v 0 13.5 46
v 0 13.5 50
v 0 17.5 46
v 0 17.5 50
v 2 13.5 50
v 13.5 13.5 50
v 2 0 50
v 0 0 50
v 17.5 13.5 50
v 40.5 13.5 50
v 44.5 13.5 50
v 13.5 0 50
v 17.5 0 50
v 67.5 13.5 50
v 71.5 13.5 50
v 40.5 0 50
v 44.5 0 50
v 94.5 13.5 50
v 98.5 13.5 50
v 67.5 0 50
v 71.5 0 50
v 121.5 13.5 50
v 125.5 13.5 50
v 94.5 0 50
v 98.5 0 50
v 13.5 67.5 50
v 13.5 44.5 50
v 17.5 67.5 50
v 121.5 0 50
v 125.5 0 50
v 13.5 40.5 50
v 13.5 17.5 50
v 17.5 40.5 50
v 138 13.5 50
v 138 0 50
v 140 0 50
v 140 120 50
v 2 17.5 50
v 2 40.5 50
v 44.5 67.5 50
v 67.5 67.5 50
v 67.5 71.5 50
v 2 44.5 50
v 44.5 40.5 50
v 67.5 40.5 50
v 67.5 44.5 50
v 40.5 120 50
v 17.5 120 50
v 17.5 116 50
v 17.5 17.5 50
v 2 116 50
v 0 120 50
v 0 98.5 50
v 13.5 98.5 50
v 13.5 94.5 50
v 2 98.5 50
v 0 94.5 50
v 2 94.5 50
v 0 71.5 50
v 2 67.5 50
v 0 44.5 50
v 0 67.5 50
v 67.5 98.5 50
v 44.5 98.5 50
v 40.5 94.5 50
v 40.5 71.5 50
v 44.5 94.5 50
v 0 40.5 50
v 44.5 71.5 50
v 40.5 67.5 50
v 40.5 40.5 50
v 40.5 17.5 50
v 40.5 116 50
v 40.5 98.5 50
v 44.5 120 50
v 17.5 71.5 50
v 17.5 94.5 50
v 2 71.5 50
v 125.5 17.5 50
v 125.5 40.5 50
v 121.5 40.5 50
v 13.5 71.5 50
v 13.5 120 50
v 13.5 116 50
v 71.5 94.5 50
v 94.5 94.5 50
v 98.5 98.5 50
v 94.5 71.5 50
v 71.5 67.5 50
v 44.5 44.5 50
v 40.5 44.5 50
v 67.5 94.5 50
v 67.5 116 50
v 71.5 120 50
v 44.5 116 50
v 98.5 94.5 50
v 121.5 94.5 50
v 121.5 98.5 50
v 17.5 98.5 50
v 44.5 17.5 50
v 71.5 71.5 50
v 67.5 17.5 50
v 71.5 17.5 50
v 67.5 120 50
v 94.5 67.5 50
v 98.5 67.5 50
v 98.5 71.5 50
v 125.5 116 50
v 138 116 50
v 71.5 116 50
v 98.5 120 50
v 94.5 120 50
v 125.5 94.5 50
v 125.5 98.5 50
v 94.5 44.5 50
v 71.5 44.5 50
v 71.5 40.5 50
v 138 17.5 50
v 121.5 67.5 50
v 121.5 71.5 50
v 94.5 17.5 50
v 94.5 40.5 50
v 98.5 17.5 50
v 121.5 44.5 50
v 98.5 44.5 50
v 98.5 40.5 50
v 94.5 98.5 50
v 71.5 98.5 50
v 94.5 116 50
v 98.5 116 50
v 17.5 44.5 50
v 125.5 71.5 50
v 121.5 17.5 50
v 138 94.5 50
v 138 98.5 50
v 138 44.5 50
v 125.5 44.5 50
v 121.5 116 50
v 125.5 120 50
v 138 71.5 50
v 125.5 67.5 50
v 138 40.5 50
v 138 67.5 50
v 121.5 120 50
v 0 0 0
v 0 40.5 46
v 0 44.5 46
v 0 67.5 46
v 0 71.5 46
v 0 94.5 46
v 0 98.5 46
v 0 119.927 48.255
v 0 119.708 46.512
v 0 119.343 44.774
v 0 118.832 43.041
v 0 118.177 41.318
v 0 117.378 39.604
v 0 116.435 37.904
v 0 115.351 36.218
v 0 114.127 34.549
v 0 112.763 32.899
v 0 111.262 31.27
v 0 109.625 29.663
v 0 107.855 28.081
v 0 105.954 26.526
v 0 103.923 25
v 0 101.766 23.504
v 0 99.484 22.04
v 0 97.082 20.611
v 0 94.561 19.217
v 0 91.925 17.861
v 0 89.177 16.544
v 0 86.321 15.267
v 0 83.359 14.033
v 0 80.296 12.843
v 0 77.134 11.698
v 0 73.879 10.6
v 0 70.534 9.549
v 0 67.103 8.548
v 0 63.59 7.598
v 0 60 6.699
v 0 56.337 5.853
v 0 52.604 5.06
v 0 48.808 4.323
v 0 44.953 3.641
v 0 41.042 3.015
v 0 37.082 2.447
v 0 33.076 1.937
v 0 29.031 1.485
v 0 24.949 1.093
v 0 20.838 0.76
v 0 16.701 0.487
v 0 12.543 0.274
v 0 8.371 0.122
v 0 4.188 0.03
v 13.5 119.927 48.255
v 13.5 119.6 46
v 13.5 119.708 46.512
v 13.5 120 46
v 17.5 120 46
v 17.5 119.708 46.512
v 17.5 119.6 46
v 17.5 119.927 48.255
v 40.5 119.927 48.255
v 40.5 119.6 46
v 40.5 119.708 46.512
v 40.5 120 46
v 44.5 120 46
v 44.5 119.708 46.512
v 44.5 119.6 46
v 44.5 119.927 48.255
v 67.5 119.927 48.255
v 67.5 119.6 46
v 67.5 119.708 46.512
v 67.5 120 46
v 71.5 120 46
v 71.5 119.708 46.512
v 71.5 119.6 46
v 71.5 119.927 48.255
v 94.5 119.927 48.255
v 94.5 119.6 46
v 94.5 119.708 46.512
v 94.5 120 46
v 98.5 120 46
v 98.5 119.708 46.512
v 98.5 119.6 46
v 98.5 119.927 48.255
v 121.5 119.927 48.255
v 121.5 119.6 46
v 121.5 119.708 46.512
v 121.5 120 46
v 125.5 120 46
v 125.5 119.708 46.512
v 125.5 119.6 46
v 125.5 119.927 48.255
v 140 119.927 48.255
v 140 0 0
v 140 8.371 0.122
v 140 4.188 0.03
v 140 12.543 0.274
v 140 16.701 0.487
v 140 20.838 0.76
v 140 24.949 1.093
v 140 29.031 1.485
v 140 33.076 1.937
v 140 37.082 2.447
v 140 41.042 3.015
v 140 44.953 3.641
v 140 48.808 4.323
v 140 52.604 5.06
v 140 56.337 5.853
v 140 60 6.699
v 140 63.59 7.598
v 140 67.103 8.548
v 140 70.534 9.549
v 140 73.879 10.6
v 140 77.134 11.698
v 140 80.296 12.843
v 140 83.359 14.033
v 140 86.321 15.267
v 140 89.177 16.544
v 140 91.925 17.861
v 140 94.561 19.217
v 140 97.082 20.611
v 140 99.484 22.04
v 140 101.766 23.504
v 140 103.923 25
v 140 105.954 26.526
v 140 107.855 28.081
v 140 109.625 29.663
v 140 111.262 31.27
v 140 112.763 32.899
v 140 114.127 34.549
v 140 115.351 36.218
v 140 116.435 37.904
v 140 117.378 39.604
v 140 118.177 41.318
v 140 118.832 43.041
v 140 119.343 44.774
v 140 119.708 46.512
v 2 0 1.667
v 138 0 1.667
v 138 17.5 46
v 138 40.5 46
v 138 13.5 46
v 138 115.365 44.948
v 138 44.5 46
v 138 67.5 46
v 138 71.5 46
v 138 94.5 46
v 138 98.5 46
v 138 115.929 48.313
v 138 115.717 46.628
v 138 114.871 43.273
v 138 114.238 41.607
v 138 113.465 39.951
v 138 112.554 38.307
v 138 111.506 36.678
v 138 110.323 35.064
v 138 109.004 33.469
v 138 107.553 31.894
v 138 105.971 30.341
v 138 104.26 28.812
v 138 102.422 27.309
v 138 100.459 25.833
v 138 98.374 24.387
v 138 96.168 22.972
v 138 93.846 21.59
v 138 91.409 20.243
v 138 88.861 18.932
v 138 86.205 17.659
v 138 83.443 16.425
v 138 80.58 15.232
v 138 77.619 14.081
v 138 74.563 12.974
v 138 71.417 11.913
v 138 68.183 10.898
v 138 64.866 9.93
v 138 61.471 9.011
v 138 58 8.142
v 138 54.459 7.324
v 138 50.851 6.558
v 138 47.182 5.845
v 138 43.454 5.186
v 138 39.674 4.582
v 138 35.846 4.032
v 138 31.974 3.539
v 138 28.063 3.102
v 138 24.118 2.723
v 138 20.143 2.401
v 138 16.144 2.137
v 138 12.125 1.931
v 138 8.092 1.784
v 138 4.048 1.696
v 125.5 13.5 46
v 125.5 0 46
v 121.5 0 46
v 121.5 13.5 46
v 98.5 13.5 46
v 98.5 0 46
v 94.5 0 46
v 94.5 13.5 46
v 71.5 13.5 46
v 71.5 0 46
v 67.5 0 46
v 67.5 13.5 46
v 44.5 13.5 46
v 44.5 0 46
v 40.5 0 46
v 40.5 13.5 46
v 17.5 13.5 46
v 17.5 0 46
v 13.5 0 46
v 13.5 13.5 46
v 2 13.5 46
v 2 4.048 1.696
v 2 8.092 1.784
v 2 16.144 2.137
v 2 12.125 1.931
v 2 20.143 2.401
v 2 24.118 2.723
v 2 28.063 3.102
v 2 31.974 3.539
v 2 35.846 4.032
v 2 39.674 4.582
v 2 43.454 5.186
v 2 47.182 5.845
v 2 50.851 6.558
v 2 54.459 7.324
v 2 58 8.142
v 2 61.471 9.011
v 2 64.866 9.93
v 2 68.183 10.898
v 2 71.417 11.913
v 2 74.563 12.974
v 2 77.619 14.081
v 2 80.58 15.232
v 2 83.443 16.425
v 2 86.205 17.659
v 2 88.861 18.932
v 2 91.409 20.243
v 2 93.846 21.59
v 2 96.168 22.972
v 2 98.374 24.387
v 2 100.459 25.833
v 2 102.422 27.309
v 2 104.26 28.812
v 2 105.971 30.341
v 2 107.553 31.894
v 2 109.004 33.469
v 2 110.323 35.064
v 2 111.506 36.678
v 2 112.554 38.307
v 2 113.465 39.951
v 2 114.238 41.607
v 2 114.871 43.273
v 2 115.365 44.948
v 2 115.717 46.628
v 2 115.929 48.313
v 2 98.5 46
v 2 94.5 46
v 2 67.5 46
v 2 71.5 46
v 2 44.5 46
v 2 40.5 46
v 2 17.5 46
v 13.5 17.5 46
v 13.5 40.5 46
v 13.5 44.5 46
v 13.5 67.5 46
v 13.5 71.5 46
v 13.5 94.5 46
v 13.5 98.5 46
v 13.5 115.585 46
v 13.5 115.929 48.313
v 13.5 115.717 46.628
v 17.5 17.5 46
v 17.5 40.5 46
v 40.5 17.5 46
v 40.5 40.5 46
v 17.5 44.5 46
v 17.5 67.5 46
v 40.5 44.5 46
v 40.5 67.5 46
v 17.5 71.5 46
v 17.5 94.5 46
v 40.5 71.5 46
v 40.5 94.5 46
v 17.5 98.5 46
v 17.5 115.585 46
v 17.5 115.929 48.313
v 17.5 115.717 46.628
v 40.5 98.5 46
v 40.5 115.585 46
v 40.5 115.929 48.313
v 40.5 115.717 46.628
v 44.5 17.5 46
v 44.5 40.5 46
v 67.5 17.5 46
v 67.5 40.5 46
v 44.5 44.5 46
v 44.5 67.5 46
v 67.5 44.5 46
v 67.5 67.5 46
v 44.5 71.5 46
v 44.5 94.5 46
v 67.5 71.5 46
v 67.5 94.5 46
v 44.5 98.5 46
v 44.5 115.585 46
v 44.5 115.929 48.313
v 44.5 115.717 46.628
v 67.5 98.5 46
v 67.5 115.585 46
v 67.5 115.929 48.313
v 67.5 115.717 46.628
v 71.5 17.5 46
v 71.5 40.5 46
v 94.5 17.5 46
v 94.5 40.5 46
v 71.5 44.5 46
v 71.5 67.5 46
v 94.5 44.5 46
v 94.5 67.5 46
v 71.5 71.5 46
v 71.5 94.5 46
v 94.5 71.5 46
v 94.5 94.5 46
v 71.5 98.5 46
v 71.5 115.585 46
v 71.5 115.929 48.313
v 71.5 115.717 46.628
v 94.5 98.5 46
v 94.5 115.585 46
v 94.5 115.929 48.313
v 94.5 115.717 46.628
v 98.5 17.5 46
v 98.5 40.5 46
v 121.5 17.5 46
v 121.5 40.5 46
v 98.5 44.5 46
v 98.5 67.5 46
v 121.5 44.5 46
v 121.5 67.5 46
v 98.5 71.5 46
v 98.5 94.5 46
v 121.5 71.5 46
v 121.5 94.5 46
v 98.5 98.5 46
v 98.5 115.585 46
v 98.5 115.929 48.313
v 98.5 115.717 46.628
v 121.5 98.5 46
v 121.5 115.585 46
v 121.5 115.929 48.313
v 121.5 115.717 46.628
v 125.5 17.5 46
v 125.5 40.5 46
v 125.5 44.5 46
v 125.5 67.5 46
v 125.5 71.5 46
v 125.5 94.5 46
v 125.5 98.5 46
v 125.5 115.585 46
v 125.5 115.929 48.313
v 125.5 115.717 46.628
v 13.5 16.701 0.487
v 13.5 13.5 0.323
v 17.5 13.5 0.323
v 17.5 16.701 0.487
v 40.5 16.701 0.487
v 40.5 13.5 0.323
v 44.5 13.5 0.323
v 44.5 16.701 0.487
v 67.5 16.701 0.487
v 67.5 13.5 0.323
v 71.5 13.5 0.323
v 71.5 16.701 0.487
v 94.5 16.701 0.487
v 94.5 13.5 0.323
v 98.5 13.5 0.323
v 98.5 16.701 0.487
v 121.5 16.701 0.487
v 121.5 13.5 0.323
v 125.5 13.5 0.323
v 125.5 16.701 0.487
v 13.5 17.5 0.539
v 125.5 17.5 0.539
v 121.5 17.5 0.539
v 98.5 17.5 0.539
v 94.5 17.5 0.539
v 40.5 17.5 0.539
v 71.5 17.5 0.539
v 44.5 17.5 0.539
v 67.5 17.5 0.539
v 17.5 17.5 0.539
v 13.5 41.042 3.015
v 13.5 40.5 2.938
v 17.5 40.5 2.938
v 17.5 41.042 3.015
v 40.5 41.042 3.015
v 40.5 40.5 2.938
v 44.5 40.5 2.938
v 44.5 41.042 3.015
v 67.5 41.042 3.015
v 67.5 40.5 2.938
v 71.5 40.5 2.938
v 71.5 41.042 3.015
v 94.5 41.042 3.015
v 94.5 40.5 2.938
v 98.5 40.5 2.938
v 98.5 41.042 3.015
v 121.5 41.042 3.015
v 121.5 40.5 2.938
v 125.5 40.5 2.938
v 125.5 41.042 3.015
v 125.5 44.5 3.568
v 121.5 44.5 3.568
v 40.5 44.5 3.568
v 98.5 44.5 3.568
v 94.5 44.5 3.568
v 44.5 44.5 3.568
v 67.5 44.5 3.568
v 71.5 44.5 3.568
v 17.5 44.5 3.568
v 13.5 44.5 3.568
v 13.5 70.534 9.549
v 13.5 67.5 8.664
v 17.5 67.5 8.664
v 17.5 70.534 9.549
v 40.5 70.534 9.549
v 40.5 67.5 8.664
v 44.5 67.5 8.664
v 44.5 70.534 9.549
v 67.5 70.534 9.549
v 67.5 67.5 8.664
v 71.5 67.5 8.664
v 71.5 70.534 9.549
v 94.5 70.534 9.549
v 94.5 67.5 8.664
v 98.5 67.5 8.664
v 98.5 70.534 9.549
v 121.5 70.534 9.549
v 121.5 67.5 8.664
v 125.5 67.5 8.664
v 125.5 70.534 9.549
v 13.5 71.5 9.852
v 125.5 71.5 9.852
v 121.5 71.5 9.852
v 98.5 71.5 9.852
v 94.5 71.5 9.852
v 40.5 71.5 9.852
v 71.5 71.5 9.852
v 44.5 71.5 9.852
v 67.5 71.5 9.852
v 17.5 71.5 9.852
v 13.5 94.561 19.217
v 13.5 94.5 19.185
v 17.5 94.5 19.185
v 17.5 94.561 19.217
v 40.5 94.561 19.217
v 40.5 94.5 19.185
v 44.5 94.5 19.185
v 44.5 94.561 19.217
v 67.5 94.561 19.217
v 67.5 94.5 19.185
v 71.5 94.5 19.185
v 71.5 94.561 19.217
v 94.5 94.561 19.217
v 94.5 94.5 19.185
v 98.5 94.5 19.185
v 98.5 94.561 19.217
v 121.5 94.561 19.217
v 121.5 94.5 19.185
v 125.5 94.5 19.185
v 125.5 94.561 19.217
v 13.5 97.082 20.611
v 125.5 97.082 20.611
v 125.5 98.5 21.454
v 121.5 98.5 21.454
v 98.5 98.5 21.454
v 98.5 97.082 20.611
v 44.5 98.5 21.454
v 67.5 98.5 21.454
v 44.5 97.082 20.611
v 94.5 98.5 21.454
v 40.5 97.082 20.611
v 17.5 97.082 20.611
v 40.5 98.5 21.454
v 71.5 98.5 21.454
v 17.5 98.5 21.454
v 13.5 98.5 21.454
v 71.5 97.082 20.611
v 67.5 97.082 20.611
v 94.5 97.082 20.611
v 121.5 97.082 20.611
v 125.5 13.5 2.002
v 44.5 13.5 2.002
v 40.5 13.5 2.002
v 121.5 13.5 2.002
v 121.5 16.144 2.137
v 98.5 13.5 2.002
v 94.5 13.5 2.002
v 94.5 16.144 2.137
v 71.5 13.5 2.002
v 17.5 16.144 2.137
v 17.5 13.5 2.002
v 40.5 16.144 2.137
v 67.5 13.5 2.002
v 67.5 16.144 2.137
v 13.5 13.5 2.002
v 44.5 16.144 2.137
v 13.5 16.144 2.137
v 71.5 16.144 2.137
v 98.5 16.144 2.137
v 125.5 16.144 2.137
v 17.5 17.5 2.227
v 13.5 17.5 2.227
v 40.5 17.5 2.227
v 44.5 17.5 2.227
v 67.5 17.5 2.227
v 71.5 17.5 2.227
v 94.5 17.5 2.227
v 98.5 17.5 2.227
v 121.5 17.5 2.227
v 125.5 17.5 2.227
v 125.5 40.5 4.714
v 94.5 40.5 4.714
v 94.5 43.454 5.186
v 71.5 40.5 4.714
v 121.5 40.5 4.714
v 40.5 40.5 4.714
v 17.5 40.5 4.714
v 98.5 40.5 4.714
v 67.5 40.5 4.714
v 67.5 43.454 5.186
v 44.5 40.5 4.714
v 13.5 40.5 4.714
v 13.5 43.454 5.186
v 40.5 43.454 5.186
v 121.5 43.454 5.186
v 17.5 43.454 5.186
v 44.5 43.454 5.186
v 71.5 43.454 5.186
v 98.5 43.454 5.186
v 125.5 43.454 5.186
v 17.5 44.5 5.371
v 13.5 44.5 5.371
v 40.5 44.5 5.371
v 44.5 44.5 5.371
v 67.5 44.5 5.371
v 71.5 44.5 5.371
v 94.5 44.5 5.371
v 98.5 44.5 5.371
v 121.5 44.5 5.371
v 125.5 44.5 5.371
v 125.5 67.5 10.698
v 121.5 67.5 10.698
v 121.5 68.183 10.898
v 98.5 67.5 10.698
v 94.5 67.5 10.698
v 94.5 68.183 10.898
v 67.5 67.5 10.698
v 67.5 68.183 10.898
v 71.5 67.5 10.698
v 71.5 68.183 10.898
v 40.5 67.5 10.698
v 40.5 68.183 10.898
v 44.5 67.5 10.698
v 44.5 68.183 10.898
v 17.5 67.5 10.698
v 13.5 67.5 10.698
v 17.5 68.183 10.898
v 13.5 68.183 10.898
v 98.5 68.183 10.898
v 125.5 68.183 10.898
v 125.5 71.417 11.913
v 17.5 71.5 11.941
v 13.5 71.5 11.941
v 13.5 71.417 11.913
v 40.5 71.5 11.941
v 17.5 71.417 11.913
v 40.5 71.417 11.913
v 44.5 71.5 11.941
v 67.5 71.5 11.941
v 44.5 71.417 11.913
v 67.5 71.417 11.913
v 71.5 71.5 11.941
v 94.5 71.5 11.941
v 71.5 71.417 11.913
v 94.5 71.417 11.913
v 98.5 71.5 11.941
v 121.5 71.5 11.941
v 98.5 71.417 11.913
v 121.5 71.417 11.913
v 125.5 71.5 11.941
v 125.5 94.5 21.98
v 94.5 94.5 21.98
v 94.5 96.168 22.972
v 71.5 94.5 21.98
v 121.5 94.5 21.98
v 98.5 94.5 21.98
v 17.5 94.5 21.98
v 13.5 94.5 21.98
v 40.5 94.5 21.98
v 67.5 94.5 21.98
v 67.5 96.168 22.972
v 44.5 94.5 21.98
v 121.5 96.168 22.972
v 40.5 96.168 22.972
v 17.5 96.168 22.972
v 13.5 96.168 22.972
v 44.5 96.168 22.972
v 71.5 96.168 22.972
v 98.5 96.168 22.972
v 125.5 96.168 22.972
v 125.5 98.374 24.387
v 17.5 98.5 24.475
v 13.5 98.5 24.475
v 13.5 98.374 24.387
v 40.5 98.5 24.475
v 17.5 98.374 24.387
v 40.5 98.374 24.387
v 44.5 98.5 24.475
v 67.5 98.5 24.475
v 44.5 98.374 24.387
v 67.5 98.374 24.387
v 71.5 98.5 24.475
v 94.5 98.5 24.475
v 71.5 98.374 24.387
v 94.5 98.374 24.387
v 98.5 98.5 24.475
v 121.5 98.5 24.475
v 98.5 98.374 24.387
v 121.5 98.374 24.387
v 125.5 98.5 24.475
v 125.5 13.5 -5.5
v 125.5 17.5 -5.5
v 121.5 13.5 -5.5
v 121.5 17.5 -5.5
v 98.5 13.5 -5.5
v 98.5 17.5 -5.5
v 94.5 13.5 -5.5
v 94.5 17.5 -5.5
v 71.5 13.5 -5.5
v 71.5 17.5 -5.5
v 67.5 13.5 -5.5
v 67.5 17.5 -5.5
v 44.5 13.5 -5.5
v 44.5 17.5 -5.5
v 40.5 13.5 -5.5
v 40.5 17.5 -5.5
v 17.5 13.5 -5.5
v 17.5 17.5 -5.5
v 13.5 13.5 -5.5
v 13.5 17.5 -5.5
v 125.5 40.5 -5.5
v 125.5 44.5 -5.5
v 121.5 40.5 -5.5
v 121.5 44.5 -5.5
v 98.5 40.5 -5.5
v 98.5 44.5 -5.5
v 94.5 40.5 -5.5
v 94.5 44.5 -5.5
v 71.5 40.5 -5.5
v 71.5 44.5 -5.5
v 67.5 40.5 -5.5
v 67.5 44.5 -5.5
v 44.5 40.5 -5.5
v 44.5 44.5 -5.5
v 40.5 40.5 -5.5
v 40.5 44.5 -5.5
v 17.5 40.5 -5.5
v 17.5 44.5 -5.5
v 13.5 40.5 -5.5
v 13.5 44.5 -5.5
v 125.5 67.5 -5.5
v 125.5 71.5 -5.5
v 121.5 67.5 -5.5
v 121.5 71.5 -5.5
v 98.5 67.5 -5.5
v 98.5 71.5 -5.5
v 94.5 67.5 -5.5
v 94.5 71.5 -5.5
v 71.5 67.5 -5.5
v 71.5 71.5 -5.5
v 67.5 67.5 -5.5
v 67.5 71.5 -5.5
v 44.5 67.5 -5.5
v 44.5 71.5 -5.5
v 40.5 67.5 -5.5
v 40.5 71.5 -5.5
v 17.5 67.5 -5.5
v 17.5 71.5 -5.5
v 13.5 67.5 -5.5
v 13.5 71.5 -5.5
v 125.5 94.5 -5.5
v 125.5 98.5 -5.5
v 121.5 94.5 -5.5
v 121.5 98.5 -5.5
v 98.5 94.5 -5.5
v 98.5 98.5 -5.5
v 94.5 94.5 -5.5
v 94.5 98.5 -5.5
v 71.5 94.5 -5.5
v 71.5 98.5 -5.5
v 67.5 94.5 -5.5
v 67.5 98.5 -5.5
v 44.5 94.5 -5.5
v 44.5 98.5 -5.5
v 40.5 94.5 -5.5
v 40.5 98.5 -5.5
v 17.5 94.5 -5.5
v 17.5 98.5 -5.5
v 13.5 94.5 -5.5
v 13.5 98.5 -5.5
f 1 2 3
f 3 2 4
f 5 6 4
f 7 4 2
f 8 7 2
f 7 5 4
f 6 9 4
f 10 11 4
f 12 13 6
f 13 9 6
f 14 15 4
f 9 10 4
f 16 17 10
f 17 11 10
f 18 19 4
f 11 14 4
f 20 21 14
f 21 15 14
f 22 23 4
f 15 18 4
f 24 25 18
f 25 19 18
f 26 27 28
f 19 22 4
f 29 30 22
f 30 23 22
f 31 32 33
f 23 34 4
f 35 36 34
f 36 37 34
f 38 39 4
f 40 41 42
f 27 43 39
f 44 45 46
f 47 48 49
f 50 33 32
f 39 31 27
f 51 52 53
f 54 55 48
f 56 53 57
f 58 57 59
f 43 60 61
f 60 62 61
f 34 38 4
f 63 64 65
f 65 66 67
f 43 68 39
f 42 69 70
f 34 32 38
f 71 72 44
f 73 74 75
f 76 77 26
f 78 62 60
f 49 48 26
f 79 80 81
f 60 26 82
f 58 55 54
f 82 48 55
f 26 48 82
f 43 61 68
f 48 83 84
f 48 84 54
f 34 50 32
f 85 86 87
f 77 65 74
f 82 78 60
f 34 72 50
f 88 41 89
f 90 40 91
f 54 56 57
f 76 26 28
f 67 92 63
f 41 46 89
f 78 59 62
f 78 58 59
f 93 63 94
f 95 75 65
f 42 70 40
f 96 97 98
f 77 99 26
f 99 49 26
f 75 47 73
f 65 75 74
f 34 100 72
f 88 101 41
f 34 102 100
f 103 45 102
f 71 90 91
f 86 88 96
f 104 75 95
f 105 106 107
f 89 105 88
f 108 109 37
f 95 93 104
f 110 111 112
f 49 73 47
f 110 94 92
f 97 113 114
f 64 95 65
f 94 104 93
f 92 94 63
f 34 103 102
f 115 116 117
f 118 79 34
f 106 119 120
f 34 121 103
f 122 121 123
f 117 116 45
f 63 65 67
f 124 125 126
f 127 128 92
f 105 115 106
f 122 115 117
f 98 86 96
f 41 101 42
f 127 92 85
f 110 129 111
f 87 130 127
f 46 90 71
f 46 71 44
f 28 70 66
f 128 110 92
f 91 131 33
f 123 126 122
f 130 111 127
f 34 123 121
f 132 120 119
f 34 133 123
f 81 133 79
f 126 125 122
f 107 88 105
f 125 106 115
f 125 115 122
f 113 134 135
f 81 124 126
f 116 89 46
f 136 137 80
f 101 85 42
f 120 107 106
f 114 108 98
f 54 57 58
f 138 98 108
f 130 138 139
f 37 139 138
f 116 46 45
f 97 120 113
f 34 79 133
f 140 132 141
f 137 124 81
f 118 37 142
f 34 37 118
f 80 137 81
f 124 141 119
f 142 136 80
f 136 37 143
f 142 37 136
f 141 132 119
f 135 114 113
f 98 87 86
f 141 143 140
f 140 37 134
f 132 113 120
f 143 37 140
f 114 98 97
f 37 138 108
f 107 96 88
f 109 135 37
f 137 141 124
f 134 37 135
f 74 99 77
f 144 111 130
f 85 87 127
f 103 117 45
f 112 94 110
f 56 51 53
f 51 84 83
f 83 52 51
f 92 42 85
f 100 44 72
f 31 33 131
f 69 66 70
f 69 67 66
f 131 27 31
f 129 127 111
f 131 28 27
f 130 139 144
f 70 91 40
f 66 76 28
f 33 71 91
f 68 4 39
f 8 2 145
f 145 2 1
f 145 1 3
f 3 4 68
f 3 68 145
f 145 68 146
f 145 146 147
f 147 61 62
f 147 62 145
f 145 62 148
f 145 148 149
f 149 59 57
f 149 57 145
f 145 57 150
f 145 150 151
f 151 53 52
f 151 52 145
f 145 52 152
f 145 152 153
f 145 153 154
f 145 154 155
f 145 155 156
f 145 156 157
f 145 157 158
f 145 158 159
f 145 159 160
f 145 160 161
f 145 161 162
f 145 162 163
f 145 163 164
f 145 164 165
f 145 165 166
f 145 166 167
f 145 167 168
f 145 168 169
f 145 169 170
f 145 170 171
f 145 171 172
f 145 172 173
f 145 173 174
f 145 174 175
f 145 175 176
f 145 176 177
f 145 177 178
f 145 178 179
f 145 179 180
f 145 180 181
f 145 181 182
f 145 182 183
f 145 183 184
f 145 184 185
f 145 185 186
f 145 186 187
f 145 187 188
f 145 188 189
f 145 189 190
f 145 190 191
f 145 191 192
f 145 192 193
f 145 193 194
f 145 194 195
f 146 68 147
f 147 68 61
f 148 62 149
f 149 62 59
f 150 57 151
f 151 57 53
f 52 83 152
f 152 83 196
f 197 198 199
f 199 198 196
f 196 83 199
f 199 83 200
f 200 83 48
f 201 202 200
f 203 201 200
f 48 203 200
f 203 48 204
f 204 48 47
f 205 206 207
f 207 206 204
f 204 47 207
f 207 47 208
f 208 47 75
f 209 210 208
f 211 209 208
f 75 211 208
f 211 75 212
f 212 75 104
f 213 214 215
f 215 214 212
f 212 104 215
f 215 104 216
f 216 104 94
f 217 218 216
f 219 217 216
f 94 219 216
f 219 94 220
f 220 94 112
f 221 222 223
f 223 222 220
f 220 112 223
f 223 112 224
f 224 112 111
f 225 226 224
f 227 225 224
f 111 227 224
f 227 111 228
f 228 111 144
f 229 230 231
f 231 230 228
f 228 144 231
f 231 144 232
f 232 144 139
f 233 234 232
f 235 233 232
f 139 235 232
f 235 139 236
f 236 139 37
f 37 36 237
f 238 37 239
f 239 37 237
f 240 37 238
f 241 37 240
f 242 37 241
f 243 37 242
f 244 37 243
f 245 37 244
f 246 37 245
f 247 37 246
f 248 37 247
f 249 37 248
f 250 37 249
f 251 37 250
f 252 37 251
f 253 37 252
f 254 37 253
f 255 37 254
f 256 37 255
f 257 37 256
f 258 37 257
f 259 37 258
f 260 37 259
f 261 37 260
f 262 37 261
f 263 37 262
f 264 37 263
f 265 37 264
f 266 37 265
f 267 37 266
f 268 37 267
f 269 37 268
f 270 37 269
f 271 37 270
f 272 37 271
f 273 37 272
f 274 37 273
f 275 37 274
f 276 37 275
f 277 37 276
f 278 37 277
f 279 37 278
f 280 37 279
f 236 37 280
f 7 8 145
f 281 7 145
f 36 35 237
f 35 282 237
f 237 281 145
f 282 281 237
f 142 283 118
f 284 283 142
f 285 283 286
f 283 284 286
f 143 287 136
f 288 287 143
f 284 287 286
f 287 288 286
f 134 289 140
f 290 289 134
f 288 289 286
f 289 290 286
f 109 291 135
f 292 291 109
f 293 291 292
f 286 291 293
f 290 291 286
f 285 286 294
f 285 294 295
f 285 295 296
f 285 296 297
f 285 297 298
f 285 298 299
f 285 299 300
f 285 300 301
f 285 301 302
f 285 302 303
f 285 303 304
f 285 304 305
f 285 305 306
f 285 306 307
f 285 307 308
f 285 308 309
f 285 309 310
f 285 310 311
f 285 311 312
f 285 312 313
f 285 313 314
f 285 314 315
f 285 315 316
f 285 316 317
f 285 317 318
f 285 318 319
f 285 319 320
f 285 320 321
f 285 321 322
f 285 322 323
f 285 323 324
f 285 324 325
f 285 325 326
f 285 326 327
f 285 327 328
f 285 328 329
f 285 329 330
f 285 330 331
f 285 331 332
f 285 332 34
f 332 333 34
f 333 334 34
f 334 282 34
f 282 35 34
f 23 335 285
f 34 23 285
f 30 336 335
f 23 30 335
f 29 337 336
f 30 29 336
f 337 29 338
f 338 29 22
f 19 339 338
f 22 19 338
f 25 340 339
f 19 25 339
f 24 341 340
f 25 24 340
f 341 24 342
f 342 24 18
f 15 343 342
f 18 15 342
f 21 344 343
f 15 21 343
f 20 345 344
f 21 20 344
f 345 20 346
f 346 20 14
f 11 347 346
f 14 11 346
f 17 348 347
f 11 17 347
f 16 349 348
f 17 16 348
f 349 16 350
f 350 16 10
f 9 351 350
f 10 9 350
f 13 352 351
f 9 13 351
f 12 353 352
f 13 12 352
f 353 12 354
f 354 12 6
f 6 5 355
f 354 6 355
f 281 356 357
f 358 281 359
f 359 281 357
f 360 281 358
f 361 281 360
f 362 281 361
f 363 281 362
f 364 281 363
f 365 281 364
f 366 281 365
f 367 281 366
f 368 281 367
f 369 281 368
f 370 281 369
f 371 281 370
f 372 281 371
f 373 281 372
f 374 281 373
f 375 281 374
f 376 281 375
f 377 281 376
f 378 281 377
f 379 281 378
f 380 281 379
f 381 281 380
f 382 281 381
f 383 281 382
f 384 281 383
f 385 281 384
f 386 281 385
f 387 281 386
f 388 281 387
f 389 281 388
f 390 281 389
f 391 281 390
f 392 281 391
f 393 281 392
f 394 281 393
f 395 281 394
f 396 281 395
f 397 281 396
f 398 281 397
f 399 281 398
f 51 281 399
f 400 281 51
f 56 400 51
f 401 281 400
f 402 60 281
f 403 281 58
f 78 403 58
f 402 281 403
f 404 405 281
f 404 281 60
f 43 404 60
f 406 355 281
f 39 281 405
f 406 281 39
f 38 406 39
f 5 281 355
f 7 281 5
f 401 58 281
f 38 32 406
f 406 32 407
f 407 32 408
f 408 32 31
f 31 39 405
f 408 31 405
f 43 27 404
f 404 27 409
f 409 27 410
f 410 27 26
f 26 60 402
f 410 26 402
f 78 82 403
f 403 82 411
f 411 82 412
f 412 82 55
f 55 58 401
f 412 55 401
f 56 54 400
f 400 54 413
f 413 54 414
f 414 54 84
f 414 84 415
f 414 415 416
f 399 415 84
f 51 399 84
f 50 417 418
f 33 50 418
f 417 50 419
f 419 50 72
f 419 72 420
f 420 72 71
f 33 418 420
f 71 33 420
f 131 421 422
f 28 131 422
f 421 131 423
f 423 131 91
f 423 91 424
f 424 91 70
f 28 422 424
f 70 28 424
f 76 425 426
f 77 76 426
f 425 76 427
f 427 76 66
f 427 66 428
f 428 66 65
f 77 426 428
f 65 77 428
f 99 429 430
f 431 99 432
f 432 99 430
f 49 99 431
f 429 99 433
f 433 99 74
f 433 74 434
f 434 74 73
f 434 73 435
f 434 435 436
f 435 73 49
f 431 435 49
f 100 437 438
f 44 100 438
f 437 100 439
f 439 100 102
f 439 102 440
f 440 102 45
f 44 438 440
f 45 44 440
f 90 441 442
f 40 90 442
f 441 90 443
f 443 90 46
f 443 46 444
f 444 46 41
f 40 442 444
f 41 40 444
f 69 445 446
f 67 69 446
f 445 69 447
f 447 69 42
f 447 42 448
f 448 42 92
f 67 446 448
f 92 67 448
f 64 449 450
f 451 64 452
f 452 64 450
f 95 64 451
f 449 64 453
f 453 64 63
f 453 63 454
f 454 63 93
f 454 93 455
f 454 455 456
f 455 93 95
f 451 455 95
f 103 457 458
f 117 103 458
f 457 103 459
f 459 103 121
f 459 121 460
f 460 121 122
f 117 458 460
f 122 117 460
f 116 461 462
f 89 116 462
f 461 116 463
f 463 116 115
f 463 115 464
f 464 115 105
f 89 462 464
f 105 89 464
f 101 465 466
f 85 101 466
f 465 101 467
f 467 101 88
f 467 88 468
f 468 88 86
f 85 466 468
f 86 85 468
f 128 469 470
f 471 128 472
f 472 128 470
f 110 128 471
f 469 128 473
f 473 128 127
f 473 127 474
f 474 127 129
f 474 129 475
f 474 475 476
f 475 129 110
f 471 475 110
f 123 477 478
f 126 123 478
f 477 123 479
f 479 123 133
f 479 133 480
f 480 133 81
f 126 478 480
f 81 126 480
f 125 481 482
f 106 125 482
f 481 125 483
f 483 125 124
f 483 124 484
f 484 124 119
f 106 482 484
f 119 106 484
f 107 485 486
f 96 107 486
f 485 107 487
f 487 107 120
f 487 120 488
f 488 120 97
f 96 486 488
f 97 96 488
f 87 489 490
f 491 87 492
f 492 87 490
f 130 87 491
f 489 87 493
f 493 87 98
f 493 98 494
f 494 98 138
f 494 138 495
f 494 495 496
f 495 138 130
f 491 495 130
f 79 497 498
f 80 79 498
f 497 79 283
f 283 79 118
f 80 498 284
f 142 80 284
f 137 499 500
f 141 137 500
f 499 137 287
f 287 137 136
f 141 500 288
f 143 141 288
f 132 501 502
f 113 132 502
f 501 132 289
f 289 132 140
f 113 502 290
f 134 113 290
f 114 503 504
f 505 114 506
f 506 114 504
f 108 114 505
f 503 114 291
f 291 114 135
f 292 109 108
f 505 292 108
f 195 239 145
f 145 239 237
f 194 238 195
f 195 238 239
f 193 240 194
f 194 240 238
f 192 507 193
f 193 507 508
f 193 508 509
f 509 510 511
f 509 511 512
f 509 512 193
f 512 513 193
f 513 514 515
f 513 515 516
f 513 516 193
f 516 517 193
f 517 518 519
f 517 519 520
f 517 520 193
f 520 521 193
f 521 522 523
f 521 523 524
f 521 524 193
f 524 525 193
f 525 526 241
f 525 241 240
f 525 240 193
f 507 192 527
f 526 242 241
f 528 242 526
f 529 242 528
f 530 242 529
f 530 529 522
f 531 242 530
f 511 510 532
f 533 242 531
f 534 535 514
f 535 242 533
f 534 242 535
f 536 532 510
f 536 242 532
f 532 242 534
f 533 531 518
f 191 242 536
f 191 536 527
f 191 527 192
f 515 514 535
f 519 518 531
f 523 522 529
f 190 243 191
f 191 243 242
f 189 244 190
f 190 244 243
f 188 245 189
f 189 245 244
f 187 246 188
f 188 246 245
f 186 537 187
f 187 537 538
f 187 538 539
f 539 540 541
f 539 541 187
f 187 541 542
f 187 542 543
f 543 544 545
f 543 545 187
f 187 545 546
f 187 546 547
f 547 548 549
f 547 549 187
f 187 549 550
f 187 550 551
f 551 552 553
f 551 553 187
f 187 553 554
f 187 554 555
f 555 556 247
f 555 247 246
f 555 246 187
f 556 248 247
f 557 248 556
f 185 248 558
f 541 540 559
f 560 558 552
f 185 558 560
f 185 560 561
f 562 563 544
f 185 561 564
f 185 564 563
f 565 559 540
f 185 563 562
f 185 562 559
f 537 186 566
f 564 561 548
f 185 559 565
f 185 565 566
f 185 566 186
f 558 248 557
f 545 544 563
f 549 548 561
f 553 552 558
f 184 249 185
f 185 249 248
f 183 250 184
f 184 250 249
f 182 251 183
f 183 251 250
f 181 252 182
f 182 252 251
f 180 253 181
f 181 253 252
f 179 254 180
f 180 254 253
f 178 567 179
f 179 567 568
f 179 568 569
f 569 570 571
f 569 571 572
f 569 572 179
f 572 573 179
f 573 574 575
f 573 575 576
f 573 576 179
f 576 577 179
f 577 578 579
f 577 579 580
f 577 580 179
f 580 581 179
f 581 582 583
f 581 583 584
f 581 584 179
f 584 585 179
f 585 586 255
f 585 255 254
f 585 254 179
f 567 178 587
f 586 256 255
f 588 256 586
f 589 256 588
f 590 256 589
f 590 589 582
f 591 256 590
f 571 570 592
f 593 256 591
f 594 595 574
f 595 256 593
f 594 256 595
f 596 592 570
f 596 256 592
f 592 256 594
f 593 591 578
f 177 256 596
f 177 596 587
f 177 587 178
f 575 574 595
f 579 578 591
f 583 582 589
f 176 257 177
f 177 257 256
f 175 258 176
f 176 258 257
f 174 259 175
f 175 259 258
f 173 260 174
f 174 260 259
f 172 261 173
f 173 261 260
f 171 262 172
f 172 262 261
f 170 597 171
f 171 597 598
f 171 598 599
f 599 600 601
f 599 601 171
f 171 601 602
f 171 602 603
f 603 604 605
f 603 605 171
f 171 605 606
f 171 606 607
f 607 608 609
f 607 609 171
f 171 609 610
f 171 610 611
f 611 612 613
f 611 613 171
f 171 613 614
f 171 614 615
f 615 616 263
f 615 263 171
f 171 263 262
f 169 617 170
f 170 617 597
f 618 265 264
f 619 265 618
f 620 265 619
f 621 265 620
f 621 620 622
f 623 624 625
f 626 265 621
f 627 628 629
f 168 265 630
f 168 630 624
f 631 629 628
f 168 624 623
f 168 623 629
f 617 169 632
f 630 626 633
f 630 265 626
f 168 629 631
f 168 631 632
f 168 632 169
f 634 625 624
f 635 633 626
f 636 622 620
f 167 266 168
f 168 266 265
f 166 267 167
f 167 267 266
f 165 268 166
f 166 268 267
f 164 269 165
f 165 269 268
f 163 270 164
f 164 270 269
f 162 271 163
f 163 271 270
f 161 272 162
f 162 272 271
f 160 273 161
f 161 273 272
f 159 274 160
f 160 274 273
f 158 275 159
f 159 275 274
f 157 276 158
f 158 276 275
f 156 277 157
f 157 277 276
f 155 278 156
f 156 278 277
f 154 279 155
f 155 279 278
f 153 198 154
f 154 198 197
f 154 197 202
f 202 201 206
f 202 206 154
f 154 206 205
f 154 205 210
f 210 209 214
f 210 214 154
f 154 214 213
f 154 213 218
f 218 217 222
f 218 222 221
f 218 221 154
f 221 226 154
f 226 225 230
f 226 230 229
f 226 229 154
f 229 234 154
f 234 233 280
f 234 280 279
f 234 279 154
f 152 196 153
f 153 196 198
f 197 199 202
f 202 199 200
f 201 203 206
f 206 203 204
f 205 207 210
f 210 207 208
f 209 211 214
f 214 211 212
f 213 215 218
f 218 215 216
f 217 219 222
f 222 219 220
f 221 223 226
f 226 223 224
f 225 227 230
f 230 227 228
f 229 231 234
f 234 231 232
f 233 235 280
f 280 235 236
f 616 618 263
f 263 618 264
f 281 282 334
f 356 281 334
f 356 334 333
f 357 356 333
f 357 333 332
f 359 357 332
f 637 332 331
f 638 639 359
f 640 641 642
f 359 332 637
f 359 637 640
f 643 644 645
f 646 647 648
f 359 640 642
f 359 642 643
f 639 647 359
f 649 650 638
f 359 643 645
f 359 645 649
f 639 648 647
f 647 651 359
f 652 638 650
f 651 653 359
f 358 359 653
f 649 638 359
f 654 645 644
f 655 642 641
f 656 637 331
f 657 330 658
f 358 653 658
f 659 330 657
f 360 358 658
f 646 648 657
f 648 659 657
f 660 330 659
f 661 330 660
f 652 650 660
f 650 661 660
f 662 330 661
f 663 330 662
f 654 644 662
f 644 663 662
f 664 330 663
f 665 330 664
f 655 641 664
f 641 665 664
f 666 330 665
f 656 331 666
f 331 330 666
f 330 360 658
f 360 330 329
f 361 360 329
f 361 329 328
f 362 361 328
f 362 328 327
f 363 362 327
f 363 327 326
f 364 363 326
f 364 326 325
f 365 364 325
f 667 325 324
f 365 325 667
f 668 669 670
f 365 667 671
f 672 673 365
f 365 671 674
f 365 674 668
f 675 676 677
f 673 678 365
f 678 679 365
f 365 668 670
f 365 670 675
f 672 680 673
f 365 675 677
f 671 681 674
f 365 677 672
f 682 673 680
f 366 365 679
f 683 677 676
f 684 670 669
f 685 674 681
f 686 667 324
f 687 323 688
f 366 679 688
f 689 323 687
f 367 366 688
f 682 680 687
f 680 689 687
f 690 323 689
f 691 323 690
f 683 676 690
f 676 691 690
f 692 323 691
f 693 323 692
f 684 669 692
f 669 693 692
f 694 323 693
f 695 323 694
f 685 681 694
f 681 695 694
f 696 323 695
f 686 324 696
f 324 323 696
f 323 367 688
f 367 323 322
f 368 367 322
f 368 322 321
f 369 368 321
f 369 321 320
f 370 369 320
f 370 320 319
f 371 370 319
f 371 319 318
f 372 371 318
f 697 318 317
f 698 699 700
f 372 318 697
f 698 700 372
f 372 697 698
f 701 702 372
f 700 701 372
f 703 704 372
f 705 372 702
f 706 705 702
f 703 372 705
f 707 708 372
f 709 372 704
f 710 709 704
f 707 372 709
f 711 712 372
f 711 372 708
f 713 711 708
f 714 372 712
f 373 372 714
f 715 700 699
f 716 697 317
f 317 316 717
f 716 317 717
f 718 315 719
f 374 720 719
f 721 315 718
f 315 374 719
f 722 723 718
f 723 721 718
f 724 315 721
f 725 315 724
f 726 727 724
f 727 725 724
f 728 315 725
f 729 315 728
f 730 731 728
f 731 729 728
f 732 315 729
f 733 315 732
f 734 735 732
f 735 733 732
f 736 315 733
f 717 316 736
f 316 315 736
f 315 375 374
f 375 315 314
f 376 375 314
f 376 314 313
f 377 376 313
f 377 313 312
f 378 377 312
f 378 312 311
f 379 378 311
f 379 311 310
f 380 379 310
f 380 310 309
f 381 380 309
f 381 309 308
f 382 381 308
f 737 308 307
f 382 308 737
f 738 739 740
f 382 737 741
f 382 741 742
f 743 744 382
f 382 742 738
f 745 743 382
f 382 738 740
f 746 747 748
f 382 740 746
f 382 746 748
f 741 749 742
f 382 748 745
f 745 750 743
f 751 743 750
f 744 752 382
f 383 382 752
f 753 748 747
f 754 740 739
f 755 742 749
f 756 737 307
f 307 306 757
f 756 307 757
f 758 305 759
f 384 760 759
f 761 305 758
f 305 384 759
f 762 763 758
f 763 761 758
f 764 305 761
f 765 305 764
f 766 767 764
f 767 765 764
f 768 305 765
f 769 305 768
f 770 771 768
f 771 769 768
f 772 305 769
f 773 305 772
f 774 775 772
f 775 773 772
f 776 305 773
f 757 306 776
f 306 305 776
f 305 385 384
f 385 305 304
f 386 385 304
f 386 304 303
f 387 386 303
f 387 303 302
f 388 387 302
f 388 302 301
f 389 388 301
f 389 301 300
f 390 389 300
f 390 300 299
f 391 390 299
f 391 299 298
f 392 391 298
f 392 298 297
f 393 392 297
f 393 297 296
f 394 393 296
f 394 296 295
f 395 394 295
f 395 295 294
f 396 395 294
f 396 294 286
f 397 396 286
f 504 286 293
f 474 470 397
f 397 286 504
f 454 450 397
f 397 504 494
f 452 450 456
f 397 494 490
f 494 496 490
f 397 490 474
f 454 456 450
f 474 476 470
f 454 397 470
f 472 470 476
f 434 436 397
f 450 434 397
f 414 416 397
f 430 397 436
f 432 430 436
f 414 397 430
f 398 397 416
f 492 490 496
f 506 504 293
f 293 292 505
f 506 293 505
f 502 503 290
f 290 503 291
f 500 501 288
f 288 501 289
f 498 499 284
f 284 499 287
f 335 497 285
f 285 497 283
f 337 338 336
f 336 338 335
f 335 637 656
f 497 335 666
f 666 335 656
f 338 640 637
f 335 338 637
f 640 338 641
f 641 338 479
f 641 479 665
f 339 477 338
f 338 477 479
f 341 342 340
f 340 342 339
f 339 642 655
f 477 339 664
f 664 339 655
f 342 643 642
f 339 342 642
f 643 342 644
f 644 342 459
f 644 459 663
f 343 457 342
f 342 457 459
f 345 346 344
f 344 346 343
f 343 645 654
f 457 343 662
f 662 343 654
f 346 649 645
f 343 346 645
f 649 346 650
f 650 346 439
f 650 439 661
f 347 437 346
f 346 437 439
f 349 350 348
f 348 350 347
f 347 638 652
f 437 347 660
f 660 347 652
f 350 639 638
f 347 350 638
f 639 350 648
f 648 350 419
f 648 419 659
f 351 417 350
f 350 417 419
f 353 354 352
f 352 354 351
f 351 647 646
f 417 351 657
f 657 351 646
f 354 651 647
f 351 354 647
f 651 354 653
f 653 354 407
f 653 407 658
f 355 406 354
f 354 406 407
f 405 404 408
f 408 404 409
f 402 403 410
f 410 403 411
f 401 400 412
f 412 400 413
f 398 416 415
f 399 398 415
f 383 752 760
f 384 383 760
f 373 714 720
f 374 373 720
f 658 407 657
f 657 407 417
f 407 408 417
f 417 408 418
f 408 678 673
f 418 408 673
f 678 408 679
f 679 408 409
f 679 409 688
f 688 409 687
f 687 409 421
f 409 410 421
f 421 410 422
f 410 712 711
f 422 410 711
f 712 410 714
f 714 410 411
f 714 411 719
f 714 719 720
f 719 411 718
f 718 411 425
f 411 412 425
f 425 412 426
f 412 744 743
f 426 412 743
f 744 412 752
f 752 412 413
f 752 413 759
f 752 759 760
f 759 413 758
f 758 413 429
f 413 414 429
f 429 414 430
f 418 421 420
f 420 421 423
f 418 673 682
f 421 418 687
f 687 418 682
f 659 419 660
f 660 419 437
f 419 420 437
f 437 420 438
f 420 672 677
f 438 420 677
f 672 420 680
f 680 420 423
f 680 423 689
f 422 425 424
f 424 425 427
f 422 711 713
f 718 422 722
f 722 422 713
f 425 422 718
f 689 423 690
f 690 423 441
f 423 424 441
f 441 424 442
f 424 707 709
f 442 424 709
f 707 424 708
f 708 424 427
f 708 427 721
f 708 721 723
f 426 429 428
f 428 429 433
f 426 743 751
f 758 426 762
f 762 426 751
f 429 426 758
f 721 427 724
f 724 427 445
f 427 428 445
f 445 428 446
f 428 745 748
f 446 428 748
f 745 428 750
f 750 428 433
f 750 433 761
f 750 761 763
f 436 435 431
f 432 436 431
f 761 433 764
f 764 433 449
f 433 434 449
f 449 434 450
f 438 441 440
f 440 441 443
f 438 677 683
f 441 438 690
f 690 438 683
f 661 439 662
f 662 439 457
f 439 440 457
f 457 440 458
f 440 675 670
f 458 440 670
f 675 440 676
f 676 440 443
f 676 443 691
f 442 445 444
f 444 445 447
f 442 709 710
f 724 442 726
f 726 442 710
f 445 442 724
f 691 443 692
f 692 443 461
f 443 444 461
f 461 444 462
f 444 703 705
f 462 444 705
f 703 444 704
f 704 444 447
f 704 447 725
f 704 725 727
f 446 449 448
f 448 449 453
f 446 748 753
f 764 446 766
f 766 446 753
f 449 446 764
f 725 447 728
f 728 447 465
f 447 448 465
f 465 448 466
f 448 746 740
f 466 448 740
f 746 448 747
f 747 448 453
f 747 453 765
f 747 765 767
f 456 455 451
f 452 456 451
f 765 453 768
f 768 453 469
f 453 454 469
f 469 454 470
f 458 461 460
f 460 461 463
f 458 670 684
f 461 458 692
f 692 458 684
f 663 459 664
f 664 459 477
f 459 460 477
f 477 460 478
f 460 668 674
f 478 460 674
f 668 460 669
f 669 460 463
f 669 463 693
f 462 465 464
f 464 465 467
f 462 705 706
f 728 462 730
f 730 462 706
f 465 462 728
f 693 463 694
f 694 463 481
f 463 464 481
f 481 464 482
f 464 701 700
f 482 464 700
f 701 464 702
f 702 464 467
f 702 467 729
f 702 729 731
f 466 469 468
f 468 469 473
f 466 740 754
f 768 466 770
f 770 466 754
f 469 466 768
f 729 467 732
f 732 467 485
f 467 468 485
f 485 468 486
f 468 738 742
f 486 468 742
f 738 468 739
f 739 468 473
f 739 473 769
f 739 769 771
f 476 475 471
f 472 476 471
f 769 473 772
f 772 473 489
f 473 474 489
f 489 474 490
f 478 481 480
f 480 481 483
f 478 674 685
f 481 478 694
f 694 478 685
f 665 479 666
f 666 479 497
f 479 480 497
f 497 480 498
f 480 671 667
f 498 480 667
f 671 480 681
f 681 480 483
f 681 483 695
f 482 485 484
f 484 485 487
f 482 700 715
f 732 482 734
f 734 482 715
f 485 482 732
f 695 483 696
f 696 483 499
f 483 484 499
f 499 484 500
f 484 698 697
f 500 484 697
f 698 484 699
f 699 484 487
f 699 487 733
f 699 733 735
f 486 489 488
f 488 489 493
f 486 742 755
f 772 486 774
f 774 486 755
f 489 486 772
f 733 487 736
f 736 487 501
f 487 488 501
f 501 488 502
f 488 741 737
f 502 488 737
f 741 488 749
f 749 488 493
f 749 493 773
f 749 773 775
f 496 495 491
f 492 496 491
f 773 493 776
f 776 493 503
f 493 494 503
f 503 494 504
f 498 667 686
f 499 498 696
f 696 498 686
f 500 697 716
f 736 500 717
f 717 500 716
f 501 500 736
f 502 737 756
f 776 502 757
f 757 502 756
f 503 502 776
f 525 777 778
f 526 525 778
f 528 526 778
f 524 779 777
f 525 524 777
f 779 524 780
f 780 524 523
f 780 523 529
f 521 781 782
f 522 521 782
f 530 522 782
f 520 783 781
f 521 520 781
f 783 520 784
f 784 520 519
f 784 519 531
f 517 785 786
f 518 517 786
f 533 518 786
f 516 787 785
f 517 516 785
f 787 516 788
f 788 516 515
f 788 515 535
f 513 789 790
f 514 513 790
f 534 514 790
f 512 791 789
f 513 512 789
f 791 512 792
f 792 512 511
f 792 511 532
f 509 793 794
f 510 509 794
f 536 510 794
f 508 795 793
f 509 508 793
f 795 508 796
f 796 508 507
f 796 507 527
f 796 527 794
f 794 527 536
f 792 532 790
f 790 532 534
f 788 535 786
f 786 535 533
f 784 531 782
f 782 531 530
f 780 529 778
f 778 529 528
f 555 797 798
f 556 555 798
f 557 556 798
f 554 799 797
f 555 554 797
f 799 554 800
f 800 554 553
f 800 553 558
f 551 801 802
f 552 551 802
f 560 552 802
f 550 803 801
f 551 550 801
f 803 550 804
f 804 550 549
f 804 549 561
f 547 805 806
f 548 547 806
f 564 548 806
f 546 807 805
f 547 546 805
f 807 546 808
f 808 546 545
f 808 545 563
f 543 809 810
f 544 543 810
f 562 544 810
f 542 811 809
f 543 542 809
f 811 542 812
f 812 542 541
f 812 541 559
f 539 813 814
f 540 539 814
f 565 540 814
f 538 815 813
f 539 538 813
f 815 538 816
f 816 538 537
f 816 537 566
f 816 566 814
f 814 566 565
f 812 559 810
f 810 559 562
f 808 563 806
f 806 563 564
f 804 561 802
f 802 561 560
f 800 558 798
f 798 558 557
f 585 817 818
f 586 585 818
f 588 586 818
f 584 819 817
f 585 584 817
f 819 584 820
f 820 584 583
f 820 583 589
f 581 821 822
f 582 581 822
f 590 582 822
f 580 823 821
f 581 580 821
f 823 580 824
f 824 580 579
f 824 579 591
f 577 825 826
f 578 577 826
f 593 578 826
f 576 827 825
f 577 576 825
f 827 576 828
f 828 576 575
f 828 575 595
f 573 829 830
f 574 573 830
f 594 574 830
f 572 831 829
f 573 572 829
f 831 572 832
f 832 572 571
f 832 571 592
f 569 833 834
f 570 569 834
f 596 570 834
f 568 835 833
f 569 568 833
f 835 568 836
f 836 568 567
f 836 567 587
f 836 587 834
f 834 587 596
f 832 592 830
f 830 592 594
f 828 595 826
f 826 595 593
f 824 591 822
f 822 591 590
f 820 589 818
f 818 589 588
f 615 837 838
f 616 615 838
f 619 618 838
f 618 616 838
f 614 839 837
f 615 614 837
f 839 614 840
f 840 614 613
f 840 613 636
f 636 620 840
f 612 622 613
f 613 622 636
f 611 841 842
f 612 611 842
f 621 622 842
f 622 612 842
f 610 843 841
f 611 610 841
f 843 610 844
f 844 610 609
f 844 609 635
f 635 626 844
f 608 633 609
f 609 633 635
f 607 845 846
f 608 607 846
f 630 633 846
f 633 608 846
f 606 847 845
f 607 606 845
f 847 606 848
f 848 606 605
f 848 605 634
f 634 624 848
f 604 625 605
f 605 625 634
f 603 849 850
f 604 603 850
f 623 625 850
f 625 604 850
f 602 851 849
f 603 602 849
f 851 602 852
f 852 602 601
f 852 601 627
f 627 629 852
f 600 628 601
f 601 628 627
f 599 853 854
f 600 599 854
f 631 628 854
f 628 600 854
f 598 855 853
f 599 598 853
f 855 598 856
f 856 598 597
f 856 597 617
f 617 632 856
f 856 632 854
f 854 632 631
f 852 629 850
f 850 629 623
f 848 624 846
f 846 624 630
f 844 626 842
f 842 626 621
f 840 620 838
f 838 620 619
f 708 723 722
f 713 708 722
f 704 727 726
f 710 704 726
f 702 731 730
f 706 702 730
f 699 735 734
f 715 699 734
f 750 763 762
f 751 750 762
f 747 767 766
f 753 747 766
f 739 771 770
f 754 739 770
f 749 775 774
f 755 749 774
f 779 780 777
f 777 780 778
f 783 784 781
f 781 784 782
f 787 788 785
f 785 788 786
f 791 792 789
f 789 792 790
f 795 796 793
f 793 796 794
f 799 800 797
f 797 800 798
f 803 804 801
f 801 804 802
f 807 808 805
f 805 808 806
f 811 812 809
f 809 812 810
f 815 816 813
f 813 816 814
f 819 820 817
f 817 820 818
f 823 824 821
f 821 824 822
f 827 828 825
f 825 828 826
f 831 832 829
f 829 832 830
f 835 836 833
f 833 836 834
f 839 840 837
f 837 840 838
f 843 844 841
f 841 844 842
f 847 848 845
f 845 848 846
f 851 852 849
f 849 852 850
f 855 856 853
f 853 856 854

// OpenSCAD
$fn = 180;

h_bs = 50;
d_bs = 120;
l_bs = 140;
t_support = 4;
spacing = 23;

h_sink = 5.5;

union() {
  difference() {
    intersection() {
      difference() {
        union() {
          // outer cylinder
          scale([1, 1, h_bs/d_bs]) {
            translate([0, 0, d_bs]) {
              rotate([0, 90, 0]) cylinder(h = l_bs, r = d_bs);
            }
          }
          // support
          //translate([]) cube([t_support, d_bs, h_bs]);
        }
        // inner cylinder
        scale([1, 1, h_bs/d_bs]) translate([t_support/2, 0, d_bs]) {
          rotate([0, 90, 0]) cylinder(h = l_bs-t_support, r = d_bs-t_support);
        }
      }
      translate([-l_bs/2, 0, 0]) cube([2*l_bs, d_bs, h_bs]);
    }
  }
  translate([0, 0, h_bs-t_support]) {
    grid(l_x = l_bs, l_y = d_bs, l_z = h_bs+h_sink, spacing = spacing, width = t_support);
  }
}

module grid(l_x, l_y, l_z, spacing, width) {
  d = width+spacing;

  union() {
    for (x=[d/2 : d : l_x]) {
      translate([x, 0, 0]) cube([width, l_y, width]);
    }
    for (y=[d/2 : d : l_y]) {
      translate([0, y, 0]) cube([l_x, width, width]);
    }
    for (x=[d/2 : d : l_x]) {
      for (y=[d/2 : d : l_y]) {
        translate([x, y, -(l_z-width)]) cube([width, width, l_z]);
      }
    }
  }
}
